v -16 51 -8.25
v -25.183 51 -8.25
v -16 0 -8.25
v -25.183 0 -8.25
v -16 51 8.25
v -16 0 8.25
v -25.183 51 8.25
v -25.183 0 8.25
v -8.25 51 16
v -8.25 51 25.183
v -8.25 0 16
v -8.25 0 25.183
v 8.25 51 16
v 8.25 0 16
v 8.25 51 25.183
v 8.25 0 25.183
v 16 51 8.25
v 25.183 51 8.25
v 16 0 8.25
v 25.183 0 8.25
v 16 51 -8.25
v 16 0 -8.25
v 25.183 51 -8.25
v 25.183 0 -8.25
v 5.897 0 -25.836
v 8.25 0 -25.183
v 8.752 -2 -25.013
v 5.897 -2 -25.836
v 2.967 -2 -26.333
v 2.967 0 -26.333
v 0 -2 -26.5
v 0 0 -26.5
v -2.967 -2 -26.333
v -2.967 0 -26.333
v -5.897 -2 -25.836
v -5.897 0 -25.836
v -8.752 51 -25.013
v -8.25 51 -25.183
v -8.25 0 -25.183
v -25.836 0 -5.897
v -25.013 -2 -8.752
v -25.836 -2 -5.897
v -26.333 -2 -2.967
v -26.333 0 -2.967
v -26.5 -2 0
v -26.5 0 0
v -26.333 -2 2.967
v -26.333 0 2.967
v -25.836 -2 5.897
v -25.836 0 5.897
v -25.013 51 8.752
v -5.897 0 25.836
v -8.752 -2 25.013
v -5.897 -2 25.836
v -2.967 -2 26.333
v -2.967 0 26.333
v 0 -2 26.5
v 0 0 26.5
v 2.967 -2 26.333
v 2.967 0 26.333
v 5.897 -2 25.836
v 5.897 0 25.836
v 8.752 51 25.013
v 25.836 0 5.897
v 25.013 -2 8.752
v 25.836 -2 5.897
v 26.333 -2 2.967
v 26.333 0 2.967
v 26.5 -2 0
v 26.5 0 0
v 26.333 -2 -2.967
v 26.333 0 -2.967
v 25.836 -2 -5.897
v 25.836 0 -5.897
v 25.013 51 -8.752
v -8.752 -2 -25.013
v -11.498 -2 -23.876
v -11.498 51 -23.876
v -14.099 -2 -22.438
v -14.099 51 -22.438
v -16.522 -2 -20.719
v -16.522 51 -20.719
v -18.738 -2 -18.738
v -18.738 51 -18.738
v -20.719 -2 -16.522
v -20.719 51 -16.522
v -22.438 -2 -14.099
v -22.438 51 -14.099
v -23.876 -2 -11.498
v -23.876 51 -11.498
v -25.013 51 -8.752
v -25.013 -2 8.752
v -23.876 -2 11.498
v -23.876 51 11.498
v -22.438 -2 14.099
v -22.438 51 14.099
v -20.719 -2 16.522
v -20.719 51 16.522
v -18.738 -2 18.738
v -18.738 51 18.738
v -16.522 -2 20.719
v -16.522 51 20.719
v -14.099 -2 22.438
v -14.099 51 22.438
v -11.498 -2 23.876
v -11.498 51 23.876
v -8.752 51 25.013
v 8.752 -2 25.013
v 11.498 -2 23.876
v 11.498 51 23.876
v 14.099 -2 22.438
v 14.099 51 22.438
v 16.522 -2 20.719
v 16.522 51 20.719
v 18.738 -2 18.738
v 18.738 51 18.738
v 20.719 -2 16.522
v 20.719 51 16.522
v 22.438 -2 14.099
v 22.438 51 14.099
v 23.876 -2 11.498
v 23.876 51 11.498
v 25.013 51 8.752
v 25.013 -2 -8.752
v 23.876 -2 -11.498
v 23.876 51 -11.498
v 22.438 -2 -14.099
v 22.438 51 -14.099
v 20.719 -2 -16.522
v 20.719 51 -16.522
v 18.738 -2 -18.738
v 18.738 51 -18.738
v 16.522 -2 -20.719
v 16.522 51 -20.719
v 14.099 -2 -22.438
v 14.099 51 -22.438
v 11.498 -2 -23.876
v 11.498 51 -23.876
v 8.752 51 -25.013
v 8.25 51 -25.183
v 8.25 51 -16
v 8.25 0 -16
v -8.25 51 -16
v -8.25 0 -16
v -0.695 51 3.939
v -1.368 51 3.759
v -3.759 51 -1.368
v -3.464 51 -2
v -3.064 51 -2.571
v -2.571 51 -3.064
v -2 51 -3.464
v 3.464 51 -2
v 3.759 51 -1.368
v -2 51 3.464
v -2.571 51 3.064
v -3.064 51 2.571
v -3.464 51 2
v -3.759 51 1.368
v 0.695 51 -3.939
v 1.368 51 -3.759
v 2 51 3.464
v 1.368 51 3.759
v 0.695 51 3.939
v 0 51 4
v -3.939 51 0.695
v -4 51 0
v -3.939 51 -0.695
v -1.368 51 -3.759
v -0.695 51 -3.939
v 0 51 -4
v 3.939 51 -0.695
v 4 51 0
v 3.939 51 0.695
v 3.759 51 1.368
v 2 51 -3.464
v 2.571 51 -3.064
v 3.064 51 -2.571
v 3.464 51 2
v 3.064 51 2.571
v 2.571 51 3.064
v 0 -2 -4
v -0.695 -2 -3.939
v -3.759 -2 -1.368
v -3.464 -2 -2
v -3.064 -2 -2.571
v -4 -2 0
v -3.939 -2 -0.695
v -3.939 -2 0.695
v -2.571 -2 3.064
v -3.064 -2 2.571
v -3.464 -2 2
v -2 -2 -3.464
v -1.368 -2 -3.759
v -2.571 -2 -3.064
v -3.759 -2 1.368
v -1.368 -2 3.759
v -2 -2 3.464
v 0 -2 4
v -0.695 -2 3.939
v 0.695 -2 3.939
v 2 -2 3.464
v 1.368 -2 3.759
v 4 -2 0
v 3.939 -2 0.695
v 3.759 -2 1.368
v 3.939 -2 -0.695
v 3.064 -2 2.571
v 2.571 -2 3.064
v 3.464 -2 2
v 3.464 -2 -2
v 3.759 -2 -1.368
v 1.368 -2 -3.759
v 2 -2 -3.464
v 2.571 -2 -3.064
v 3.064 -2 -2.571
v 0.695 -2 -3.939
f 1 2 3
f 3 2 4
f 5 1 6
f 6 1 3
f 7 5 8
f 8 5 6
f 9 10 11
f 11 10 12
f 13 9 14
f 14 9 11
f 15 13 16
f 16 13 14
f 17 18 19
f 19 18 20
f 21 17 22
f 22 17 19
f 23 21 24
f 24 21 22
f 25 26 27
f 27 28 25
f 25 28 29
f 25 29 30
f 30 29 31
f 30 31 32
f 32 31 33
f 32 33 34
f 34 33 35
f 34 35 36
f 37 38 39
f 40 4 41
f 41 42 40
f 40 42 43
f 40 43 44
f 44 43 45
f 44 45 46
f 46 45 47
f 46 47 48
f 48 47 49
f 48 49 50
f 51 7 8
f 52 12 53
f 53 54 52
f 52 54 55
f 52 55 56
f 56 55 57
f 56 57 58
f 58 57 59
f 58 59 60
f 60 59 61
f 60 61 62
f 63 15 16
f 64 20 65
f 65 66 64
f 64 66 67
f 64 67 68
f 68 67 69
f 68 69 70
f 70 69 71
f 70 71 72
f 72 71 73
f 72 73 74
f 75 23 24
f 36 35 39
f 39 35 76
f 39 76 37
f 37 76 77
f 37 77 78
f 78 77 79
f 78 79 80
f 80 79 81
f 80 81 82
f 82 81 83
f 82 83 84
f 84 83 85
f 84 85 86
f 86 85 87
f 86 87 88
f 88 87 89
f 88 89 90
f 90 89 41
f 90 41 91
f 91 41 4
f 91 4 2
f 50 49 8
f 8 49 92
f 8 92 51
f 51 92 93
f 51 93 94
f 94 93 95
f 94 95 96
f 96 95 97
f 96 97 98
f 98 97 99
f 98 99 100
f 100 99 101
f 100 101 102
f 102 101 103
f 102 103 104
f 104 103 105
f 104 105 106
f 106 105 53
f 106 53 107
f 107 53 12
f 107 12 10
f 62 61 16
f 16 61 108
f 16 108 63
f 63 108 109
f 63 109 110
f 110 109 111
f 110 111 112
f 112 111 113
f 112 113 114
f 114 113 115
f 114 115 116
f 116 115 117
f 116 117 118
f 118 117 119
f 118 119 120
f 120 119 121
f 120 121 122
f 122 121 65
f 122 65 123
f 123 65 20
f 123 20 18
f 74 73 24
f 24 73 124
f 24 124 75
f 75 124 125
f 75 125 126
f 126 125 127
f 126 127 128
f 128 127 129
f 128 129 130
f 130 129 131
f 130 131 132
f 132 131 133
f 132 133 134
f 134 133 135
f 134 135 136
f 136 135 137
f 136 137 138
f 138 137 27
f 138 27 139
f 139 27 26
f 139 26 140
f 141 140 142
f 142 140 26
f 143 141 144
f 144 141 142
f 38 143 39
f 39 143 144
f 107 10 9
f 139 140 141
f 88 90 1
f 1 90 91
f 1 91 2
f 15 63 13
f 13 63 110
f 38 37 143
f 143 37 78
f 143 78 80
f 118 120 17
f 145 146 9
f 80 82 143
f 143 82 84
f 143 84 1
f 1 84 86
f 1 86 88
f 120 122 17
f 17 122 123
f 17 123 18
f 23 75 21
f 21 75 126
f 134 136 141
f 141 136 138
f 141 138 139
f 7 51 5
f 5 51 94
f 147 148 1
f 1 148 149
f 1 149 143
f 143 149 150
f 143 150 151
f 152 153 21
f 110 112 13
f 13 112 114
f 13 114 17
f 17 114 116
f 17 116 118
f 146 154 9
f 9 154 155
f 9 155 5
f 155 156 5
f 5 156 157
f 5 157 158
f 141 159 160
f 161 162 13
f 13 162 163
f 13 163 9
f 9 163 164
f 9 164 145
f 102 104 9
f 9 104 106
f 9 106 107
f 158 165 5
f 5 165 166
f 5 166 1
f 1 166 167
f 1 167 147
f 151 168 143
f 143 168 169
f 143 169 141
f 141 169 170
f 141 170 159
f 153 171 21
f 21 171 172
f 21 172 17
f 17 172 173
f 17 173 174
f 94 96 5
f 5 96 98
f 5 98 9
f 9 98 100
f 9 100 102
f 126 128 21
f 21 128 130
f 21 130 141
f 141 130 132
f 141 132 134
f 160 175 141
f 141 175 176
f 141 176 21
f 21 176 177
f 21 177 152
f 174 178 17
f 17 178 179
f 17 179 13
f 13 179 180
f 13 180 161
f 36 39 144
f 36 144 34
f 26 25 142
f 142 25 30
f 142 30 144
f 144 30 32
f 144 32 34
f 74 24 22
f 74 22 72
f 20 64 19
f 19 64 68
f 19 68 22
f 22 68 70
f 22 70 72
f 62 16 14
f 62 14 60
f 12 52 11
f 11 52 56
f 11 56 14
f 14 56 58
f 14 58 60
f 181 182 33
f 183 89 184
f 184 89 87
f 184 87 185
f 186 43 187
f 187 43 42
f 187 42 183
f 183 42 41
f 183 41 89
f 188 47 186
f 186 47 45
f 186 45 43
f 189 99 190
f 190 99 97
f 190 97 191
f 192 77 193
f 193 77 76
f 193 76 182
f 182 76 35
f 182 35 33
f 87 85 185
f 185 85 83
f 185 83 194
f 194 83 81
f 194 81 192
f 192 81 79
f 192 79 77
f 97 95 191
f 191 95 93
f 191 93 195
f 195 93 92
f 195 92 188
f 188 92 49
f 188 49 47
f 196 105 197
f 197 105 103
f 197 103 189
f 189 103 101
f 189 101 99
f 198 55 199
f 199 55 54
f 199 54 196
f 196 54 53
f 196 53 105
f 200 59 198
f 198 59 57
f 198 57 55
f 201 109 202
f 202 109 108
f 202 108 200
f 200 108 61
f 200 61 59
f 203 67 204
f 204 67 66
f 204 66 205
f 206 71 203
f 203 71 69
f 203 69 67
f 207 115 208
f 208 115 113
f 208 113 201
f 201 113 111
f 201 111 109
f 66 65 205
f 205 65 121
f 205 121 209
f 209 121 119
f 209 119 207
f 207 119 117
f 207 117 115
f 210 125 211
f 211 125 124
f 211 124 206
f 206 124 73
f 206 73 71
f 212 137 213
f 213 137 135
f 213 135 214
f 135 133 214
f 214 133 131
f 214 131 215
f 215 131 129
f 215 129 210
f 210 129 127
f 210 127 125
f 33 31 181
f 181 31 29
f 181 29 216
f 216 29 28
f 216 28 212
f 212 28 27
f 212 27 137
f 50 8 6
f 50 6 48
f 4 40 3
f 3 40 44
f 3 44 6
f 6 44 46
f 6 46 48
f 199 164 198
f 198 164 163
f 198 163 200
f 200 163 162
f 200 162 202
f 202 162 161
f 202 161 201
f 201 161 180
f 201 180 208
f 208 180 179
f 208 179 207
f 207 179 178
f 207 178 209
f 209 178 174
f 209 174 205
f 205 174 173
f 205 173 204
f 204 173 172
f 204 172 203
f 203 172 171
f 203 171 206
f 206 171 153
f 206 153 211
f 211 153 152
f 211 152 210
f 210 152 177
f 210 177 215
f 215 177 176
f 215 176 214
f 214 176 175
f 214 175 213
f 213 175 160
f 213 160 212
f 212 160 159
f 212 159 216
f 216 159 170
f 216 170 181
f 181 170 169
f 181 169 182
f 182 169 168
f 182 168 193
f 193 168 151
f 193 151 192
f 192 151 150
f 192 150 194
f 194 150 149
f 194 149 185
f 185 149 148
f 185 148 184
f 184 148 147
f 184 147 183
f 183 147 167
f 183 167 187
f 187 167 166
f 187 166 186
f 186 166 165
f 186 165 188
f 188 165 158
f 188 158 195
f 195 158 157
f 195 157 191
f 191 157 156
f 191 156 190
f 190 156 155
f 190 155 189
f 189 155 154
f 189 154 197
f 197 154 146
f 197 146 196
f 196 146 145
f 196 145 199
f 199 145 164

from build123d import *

# Parameters (mm, degrees)
BOSS_EXTRUDE1_DEPTH = 51
SKETCH3_R           = 26.5
BOSS_EXTRUDE2_DEPTH = 2
SKETCH4_R           = 4
CUT_EXTRUDE1_DEPTH  = 54


with BuildPart() as part:
    # Sketch2 → Boss-Extrude1 (new body)
    with BuildSketch(Plane(origin=(0, 0, 0), x_dir=(1, 0, 0), z_dir=(0, 1, 0))):
        with BuildLine():
            Line((-8.25, 25.183079637), (-8.25, 16))
            Line((-8.25, 16), (8.25, 16))
            Line((8.25, 16), (8.25, 25.183079637))
            ThreePointArc((8.25, 25.183079637), (18.738329701, 18.738329701), (25.183079637, 8.25))
            Line((25.183079637, 8.25), (16, 8.25))
            Line((16, 8.25), (16, -8.25))
            Line((16, -8.25), (25.183079637, -8.25))
            ThreePointArc((25.183079637, -8.25), (18.738329701, -18.738329701), (8.25, -25.183079637))
            Line((8.25, -25.183079637), (8.25, -16))
            Line((8.25, -16), (-8.25, -16))
            Line((-8.25, -16), (-8.25, -25.183079637))
            ThreePointArc((-8.25, -25.183079637), (-18.738329701, -18.738329701), (-25.183079637, -8.25))
            Line((-25.183079637, -8.25), (-16, -8.25))
            Line((-16, -8.25), (-16, 8.25))
            Line((-16, 8.25), (-25.183079637, 8.25))
            ThreePointArc((-25.183079637, 8.25), (-18.738329701, 18.738329701), (-8.25, 25.183079637))
        make_face()
    extrude(amount=BOSS_EXTRUDE1_DEPTH)

    # Sketch3 → Boss-Extrude2 (add)
    with BuildSketch(Plane.XZ):
        Circle(SKETCH3_R)
    extrude(amount=BOSS_EXTRUDE2_DEPTH)

    # Sketch4 → Cut-Extrude1 (cut, through all)
    with BuildSketch(Plane(origin=(0, 51, 0), x_dir=(1, 0, 0), z_dir=(0, 1, 0))):
        Circle(SKETCH4_R)
    extrude(amount=-CUT_EXTRUDE1_DEPTH, mode=Mode.SUBTRACT)


solid = part.part
